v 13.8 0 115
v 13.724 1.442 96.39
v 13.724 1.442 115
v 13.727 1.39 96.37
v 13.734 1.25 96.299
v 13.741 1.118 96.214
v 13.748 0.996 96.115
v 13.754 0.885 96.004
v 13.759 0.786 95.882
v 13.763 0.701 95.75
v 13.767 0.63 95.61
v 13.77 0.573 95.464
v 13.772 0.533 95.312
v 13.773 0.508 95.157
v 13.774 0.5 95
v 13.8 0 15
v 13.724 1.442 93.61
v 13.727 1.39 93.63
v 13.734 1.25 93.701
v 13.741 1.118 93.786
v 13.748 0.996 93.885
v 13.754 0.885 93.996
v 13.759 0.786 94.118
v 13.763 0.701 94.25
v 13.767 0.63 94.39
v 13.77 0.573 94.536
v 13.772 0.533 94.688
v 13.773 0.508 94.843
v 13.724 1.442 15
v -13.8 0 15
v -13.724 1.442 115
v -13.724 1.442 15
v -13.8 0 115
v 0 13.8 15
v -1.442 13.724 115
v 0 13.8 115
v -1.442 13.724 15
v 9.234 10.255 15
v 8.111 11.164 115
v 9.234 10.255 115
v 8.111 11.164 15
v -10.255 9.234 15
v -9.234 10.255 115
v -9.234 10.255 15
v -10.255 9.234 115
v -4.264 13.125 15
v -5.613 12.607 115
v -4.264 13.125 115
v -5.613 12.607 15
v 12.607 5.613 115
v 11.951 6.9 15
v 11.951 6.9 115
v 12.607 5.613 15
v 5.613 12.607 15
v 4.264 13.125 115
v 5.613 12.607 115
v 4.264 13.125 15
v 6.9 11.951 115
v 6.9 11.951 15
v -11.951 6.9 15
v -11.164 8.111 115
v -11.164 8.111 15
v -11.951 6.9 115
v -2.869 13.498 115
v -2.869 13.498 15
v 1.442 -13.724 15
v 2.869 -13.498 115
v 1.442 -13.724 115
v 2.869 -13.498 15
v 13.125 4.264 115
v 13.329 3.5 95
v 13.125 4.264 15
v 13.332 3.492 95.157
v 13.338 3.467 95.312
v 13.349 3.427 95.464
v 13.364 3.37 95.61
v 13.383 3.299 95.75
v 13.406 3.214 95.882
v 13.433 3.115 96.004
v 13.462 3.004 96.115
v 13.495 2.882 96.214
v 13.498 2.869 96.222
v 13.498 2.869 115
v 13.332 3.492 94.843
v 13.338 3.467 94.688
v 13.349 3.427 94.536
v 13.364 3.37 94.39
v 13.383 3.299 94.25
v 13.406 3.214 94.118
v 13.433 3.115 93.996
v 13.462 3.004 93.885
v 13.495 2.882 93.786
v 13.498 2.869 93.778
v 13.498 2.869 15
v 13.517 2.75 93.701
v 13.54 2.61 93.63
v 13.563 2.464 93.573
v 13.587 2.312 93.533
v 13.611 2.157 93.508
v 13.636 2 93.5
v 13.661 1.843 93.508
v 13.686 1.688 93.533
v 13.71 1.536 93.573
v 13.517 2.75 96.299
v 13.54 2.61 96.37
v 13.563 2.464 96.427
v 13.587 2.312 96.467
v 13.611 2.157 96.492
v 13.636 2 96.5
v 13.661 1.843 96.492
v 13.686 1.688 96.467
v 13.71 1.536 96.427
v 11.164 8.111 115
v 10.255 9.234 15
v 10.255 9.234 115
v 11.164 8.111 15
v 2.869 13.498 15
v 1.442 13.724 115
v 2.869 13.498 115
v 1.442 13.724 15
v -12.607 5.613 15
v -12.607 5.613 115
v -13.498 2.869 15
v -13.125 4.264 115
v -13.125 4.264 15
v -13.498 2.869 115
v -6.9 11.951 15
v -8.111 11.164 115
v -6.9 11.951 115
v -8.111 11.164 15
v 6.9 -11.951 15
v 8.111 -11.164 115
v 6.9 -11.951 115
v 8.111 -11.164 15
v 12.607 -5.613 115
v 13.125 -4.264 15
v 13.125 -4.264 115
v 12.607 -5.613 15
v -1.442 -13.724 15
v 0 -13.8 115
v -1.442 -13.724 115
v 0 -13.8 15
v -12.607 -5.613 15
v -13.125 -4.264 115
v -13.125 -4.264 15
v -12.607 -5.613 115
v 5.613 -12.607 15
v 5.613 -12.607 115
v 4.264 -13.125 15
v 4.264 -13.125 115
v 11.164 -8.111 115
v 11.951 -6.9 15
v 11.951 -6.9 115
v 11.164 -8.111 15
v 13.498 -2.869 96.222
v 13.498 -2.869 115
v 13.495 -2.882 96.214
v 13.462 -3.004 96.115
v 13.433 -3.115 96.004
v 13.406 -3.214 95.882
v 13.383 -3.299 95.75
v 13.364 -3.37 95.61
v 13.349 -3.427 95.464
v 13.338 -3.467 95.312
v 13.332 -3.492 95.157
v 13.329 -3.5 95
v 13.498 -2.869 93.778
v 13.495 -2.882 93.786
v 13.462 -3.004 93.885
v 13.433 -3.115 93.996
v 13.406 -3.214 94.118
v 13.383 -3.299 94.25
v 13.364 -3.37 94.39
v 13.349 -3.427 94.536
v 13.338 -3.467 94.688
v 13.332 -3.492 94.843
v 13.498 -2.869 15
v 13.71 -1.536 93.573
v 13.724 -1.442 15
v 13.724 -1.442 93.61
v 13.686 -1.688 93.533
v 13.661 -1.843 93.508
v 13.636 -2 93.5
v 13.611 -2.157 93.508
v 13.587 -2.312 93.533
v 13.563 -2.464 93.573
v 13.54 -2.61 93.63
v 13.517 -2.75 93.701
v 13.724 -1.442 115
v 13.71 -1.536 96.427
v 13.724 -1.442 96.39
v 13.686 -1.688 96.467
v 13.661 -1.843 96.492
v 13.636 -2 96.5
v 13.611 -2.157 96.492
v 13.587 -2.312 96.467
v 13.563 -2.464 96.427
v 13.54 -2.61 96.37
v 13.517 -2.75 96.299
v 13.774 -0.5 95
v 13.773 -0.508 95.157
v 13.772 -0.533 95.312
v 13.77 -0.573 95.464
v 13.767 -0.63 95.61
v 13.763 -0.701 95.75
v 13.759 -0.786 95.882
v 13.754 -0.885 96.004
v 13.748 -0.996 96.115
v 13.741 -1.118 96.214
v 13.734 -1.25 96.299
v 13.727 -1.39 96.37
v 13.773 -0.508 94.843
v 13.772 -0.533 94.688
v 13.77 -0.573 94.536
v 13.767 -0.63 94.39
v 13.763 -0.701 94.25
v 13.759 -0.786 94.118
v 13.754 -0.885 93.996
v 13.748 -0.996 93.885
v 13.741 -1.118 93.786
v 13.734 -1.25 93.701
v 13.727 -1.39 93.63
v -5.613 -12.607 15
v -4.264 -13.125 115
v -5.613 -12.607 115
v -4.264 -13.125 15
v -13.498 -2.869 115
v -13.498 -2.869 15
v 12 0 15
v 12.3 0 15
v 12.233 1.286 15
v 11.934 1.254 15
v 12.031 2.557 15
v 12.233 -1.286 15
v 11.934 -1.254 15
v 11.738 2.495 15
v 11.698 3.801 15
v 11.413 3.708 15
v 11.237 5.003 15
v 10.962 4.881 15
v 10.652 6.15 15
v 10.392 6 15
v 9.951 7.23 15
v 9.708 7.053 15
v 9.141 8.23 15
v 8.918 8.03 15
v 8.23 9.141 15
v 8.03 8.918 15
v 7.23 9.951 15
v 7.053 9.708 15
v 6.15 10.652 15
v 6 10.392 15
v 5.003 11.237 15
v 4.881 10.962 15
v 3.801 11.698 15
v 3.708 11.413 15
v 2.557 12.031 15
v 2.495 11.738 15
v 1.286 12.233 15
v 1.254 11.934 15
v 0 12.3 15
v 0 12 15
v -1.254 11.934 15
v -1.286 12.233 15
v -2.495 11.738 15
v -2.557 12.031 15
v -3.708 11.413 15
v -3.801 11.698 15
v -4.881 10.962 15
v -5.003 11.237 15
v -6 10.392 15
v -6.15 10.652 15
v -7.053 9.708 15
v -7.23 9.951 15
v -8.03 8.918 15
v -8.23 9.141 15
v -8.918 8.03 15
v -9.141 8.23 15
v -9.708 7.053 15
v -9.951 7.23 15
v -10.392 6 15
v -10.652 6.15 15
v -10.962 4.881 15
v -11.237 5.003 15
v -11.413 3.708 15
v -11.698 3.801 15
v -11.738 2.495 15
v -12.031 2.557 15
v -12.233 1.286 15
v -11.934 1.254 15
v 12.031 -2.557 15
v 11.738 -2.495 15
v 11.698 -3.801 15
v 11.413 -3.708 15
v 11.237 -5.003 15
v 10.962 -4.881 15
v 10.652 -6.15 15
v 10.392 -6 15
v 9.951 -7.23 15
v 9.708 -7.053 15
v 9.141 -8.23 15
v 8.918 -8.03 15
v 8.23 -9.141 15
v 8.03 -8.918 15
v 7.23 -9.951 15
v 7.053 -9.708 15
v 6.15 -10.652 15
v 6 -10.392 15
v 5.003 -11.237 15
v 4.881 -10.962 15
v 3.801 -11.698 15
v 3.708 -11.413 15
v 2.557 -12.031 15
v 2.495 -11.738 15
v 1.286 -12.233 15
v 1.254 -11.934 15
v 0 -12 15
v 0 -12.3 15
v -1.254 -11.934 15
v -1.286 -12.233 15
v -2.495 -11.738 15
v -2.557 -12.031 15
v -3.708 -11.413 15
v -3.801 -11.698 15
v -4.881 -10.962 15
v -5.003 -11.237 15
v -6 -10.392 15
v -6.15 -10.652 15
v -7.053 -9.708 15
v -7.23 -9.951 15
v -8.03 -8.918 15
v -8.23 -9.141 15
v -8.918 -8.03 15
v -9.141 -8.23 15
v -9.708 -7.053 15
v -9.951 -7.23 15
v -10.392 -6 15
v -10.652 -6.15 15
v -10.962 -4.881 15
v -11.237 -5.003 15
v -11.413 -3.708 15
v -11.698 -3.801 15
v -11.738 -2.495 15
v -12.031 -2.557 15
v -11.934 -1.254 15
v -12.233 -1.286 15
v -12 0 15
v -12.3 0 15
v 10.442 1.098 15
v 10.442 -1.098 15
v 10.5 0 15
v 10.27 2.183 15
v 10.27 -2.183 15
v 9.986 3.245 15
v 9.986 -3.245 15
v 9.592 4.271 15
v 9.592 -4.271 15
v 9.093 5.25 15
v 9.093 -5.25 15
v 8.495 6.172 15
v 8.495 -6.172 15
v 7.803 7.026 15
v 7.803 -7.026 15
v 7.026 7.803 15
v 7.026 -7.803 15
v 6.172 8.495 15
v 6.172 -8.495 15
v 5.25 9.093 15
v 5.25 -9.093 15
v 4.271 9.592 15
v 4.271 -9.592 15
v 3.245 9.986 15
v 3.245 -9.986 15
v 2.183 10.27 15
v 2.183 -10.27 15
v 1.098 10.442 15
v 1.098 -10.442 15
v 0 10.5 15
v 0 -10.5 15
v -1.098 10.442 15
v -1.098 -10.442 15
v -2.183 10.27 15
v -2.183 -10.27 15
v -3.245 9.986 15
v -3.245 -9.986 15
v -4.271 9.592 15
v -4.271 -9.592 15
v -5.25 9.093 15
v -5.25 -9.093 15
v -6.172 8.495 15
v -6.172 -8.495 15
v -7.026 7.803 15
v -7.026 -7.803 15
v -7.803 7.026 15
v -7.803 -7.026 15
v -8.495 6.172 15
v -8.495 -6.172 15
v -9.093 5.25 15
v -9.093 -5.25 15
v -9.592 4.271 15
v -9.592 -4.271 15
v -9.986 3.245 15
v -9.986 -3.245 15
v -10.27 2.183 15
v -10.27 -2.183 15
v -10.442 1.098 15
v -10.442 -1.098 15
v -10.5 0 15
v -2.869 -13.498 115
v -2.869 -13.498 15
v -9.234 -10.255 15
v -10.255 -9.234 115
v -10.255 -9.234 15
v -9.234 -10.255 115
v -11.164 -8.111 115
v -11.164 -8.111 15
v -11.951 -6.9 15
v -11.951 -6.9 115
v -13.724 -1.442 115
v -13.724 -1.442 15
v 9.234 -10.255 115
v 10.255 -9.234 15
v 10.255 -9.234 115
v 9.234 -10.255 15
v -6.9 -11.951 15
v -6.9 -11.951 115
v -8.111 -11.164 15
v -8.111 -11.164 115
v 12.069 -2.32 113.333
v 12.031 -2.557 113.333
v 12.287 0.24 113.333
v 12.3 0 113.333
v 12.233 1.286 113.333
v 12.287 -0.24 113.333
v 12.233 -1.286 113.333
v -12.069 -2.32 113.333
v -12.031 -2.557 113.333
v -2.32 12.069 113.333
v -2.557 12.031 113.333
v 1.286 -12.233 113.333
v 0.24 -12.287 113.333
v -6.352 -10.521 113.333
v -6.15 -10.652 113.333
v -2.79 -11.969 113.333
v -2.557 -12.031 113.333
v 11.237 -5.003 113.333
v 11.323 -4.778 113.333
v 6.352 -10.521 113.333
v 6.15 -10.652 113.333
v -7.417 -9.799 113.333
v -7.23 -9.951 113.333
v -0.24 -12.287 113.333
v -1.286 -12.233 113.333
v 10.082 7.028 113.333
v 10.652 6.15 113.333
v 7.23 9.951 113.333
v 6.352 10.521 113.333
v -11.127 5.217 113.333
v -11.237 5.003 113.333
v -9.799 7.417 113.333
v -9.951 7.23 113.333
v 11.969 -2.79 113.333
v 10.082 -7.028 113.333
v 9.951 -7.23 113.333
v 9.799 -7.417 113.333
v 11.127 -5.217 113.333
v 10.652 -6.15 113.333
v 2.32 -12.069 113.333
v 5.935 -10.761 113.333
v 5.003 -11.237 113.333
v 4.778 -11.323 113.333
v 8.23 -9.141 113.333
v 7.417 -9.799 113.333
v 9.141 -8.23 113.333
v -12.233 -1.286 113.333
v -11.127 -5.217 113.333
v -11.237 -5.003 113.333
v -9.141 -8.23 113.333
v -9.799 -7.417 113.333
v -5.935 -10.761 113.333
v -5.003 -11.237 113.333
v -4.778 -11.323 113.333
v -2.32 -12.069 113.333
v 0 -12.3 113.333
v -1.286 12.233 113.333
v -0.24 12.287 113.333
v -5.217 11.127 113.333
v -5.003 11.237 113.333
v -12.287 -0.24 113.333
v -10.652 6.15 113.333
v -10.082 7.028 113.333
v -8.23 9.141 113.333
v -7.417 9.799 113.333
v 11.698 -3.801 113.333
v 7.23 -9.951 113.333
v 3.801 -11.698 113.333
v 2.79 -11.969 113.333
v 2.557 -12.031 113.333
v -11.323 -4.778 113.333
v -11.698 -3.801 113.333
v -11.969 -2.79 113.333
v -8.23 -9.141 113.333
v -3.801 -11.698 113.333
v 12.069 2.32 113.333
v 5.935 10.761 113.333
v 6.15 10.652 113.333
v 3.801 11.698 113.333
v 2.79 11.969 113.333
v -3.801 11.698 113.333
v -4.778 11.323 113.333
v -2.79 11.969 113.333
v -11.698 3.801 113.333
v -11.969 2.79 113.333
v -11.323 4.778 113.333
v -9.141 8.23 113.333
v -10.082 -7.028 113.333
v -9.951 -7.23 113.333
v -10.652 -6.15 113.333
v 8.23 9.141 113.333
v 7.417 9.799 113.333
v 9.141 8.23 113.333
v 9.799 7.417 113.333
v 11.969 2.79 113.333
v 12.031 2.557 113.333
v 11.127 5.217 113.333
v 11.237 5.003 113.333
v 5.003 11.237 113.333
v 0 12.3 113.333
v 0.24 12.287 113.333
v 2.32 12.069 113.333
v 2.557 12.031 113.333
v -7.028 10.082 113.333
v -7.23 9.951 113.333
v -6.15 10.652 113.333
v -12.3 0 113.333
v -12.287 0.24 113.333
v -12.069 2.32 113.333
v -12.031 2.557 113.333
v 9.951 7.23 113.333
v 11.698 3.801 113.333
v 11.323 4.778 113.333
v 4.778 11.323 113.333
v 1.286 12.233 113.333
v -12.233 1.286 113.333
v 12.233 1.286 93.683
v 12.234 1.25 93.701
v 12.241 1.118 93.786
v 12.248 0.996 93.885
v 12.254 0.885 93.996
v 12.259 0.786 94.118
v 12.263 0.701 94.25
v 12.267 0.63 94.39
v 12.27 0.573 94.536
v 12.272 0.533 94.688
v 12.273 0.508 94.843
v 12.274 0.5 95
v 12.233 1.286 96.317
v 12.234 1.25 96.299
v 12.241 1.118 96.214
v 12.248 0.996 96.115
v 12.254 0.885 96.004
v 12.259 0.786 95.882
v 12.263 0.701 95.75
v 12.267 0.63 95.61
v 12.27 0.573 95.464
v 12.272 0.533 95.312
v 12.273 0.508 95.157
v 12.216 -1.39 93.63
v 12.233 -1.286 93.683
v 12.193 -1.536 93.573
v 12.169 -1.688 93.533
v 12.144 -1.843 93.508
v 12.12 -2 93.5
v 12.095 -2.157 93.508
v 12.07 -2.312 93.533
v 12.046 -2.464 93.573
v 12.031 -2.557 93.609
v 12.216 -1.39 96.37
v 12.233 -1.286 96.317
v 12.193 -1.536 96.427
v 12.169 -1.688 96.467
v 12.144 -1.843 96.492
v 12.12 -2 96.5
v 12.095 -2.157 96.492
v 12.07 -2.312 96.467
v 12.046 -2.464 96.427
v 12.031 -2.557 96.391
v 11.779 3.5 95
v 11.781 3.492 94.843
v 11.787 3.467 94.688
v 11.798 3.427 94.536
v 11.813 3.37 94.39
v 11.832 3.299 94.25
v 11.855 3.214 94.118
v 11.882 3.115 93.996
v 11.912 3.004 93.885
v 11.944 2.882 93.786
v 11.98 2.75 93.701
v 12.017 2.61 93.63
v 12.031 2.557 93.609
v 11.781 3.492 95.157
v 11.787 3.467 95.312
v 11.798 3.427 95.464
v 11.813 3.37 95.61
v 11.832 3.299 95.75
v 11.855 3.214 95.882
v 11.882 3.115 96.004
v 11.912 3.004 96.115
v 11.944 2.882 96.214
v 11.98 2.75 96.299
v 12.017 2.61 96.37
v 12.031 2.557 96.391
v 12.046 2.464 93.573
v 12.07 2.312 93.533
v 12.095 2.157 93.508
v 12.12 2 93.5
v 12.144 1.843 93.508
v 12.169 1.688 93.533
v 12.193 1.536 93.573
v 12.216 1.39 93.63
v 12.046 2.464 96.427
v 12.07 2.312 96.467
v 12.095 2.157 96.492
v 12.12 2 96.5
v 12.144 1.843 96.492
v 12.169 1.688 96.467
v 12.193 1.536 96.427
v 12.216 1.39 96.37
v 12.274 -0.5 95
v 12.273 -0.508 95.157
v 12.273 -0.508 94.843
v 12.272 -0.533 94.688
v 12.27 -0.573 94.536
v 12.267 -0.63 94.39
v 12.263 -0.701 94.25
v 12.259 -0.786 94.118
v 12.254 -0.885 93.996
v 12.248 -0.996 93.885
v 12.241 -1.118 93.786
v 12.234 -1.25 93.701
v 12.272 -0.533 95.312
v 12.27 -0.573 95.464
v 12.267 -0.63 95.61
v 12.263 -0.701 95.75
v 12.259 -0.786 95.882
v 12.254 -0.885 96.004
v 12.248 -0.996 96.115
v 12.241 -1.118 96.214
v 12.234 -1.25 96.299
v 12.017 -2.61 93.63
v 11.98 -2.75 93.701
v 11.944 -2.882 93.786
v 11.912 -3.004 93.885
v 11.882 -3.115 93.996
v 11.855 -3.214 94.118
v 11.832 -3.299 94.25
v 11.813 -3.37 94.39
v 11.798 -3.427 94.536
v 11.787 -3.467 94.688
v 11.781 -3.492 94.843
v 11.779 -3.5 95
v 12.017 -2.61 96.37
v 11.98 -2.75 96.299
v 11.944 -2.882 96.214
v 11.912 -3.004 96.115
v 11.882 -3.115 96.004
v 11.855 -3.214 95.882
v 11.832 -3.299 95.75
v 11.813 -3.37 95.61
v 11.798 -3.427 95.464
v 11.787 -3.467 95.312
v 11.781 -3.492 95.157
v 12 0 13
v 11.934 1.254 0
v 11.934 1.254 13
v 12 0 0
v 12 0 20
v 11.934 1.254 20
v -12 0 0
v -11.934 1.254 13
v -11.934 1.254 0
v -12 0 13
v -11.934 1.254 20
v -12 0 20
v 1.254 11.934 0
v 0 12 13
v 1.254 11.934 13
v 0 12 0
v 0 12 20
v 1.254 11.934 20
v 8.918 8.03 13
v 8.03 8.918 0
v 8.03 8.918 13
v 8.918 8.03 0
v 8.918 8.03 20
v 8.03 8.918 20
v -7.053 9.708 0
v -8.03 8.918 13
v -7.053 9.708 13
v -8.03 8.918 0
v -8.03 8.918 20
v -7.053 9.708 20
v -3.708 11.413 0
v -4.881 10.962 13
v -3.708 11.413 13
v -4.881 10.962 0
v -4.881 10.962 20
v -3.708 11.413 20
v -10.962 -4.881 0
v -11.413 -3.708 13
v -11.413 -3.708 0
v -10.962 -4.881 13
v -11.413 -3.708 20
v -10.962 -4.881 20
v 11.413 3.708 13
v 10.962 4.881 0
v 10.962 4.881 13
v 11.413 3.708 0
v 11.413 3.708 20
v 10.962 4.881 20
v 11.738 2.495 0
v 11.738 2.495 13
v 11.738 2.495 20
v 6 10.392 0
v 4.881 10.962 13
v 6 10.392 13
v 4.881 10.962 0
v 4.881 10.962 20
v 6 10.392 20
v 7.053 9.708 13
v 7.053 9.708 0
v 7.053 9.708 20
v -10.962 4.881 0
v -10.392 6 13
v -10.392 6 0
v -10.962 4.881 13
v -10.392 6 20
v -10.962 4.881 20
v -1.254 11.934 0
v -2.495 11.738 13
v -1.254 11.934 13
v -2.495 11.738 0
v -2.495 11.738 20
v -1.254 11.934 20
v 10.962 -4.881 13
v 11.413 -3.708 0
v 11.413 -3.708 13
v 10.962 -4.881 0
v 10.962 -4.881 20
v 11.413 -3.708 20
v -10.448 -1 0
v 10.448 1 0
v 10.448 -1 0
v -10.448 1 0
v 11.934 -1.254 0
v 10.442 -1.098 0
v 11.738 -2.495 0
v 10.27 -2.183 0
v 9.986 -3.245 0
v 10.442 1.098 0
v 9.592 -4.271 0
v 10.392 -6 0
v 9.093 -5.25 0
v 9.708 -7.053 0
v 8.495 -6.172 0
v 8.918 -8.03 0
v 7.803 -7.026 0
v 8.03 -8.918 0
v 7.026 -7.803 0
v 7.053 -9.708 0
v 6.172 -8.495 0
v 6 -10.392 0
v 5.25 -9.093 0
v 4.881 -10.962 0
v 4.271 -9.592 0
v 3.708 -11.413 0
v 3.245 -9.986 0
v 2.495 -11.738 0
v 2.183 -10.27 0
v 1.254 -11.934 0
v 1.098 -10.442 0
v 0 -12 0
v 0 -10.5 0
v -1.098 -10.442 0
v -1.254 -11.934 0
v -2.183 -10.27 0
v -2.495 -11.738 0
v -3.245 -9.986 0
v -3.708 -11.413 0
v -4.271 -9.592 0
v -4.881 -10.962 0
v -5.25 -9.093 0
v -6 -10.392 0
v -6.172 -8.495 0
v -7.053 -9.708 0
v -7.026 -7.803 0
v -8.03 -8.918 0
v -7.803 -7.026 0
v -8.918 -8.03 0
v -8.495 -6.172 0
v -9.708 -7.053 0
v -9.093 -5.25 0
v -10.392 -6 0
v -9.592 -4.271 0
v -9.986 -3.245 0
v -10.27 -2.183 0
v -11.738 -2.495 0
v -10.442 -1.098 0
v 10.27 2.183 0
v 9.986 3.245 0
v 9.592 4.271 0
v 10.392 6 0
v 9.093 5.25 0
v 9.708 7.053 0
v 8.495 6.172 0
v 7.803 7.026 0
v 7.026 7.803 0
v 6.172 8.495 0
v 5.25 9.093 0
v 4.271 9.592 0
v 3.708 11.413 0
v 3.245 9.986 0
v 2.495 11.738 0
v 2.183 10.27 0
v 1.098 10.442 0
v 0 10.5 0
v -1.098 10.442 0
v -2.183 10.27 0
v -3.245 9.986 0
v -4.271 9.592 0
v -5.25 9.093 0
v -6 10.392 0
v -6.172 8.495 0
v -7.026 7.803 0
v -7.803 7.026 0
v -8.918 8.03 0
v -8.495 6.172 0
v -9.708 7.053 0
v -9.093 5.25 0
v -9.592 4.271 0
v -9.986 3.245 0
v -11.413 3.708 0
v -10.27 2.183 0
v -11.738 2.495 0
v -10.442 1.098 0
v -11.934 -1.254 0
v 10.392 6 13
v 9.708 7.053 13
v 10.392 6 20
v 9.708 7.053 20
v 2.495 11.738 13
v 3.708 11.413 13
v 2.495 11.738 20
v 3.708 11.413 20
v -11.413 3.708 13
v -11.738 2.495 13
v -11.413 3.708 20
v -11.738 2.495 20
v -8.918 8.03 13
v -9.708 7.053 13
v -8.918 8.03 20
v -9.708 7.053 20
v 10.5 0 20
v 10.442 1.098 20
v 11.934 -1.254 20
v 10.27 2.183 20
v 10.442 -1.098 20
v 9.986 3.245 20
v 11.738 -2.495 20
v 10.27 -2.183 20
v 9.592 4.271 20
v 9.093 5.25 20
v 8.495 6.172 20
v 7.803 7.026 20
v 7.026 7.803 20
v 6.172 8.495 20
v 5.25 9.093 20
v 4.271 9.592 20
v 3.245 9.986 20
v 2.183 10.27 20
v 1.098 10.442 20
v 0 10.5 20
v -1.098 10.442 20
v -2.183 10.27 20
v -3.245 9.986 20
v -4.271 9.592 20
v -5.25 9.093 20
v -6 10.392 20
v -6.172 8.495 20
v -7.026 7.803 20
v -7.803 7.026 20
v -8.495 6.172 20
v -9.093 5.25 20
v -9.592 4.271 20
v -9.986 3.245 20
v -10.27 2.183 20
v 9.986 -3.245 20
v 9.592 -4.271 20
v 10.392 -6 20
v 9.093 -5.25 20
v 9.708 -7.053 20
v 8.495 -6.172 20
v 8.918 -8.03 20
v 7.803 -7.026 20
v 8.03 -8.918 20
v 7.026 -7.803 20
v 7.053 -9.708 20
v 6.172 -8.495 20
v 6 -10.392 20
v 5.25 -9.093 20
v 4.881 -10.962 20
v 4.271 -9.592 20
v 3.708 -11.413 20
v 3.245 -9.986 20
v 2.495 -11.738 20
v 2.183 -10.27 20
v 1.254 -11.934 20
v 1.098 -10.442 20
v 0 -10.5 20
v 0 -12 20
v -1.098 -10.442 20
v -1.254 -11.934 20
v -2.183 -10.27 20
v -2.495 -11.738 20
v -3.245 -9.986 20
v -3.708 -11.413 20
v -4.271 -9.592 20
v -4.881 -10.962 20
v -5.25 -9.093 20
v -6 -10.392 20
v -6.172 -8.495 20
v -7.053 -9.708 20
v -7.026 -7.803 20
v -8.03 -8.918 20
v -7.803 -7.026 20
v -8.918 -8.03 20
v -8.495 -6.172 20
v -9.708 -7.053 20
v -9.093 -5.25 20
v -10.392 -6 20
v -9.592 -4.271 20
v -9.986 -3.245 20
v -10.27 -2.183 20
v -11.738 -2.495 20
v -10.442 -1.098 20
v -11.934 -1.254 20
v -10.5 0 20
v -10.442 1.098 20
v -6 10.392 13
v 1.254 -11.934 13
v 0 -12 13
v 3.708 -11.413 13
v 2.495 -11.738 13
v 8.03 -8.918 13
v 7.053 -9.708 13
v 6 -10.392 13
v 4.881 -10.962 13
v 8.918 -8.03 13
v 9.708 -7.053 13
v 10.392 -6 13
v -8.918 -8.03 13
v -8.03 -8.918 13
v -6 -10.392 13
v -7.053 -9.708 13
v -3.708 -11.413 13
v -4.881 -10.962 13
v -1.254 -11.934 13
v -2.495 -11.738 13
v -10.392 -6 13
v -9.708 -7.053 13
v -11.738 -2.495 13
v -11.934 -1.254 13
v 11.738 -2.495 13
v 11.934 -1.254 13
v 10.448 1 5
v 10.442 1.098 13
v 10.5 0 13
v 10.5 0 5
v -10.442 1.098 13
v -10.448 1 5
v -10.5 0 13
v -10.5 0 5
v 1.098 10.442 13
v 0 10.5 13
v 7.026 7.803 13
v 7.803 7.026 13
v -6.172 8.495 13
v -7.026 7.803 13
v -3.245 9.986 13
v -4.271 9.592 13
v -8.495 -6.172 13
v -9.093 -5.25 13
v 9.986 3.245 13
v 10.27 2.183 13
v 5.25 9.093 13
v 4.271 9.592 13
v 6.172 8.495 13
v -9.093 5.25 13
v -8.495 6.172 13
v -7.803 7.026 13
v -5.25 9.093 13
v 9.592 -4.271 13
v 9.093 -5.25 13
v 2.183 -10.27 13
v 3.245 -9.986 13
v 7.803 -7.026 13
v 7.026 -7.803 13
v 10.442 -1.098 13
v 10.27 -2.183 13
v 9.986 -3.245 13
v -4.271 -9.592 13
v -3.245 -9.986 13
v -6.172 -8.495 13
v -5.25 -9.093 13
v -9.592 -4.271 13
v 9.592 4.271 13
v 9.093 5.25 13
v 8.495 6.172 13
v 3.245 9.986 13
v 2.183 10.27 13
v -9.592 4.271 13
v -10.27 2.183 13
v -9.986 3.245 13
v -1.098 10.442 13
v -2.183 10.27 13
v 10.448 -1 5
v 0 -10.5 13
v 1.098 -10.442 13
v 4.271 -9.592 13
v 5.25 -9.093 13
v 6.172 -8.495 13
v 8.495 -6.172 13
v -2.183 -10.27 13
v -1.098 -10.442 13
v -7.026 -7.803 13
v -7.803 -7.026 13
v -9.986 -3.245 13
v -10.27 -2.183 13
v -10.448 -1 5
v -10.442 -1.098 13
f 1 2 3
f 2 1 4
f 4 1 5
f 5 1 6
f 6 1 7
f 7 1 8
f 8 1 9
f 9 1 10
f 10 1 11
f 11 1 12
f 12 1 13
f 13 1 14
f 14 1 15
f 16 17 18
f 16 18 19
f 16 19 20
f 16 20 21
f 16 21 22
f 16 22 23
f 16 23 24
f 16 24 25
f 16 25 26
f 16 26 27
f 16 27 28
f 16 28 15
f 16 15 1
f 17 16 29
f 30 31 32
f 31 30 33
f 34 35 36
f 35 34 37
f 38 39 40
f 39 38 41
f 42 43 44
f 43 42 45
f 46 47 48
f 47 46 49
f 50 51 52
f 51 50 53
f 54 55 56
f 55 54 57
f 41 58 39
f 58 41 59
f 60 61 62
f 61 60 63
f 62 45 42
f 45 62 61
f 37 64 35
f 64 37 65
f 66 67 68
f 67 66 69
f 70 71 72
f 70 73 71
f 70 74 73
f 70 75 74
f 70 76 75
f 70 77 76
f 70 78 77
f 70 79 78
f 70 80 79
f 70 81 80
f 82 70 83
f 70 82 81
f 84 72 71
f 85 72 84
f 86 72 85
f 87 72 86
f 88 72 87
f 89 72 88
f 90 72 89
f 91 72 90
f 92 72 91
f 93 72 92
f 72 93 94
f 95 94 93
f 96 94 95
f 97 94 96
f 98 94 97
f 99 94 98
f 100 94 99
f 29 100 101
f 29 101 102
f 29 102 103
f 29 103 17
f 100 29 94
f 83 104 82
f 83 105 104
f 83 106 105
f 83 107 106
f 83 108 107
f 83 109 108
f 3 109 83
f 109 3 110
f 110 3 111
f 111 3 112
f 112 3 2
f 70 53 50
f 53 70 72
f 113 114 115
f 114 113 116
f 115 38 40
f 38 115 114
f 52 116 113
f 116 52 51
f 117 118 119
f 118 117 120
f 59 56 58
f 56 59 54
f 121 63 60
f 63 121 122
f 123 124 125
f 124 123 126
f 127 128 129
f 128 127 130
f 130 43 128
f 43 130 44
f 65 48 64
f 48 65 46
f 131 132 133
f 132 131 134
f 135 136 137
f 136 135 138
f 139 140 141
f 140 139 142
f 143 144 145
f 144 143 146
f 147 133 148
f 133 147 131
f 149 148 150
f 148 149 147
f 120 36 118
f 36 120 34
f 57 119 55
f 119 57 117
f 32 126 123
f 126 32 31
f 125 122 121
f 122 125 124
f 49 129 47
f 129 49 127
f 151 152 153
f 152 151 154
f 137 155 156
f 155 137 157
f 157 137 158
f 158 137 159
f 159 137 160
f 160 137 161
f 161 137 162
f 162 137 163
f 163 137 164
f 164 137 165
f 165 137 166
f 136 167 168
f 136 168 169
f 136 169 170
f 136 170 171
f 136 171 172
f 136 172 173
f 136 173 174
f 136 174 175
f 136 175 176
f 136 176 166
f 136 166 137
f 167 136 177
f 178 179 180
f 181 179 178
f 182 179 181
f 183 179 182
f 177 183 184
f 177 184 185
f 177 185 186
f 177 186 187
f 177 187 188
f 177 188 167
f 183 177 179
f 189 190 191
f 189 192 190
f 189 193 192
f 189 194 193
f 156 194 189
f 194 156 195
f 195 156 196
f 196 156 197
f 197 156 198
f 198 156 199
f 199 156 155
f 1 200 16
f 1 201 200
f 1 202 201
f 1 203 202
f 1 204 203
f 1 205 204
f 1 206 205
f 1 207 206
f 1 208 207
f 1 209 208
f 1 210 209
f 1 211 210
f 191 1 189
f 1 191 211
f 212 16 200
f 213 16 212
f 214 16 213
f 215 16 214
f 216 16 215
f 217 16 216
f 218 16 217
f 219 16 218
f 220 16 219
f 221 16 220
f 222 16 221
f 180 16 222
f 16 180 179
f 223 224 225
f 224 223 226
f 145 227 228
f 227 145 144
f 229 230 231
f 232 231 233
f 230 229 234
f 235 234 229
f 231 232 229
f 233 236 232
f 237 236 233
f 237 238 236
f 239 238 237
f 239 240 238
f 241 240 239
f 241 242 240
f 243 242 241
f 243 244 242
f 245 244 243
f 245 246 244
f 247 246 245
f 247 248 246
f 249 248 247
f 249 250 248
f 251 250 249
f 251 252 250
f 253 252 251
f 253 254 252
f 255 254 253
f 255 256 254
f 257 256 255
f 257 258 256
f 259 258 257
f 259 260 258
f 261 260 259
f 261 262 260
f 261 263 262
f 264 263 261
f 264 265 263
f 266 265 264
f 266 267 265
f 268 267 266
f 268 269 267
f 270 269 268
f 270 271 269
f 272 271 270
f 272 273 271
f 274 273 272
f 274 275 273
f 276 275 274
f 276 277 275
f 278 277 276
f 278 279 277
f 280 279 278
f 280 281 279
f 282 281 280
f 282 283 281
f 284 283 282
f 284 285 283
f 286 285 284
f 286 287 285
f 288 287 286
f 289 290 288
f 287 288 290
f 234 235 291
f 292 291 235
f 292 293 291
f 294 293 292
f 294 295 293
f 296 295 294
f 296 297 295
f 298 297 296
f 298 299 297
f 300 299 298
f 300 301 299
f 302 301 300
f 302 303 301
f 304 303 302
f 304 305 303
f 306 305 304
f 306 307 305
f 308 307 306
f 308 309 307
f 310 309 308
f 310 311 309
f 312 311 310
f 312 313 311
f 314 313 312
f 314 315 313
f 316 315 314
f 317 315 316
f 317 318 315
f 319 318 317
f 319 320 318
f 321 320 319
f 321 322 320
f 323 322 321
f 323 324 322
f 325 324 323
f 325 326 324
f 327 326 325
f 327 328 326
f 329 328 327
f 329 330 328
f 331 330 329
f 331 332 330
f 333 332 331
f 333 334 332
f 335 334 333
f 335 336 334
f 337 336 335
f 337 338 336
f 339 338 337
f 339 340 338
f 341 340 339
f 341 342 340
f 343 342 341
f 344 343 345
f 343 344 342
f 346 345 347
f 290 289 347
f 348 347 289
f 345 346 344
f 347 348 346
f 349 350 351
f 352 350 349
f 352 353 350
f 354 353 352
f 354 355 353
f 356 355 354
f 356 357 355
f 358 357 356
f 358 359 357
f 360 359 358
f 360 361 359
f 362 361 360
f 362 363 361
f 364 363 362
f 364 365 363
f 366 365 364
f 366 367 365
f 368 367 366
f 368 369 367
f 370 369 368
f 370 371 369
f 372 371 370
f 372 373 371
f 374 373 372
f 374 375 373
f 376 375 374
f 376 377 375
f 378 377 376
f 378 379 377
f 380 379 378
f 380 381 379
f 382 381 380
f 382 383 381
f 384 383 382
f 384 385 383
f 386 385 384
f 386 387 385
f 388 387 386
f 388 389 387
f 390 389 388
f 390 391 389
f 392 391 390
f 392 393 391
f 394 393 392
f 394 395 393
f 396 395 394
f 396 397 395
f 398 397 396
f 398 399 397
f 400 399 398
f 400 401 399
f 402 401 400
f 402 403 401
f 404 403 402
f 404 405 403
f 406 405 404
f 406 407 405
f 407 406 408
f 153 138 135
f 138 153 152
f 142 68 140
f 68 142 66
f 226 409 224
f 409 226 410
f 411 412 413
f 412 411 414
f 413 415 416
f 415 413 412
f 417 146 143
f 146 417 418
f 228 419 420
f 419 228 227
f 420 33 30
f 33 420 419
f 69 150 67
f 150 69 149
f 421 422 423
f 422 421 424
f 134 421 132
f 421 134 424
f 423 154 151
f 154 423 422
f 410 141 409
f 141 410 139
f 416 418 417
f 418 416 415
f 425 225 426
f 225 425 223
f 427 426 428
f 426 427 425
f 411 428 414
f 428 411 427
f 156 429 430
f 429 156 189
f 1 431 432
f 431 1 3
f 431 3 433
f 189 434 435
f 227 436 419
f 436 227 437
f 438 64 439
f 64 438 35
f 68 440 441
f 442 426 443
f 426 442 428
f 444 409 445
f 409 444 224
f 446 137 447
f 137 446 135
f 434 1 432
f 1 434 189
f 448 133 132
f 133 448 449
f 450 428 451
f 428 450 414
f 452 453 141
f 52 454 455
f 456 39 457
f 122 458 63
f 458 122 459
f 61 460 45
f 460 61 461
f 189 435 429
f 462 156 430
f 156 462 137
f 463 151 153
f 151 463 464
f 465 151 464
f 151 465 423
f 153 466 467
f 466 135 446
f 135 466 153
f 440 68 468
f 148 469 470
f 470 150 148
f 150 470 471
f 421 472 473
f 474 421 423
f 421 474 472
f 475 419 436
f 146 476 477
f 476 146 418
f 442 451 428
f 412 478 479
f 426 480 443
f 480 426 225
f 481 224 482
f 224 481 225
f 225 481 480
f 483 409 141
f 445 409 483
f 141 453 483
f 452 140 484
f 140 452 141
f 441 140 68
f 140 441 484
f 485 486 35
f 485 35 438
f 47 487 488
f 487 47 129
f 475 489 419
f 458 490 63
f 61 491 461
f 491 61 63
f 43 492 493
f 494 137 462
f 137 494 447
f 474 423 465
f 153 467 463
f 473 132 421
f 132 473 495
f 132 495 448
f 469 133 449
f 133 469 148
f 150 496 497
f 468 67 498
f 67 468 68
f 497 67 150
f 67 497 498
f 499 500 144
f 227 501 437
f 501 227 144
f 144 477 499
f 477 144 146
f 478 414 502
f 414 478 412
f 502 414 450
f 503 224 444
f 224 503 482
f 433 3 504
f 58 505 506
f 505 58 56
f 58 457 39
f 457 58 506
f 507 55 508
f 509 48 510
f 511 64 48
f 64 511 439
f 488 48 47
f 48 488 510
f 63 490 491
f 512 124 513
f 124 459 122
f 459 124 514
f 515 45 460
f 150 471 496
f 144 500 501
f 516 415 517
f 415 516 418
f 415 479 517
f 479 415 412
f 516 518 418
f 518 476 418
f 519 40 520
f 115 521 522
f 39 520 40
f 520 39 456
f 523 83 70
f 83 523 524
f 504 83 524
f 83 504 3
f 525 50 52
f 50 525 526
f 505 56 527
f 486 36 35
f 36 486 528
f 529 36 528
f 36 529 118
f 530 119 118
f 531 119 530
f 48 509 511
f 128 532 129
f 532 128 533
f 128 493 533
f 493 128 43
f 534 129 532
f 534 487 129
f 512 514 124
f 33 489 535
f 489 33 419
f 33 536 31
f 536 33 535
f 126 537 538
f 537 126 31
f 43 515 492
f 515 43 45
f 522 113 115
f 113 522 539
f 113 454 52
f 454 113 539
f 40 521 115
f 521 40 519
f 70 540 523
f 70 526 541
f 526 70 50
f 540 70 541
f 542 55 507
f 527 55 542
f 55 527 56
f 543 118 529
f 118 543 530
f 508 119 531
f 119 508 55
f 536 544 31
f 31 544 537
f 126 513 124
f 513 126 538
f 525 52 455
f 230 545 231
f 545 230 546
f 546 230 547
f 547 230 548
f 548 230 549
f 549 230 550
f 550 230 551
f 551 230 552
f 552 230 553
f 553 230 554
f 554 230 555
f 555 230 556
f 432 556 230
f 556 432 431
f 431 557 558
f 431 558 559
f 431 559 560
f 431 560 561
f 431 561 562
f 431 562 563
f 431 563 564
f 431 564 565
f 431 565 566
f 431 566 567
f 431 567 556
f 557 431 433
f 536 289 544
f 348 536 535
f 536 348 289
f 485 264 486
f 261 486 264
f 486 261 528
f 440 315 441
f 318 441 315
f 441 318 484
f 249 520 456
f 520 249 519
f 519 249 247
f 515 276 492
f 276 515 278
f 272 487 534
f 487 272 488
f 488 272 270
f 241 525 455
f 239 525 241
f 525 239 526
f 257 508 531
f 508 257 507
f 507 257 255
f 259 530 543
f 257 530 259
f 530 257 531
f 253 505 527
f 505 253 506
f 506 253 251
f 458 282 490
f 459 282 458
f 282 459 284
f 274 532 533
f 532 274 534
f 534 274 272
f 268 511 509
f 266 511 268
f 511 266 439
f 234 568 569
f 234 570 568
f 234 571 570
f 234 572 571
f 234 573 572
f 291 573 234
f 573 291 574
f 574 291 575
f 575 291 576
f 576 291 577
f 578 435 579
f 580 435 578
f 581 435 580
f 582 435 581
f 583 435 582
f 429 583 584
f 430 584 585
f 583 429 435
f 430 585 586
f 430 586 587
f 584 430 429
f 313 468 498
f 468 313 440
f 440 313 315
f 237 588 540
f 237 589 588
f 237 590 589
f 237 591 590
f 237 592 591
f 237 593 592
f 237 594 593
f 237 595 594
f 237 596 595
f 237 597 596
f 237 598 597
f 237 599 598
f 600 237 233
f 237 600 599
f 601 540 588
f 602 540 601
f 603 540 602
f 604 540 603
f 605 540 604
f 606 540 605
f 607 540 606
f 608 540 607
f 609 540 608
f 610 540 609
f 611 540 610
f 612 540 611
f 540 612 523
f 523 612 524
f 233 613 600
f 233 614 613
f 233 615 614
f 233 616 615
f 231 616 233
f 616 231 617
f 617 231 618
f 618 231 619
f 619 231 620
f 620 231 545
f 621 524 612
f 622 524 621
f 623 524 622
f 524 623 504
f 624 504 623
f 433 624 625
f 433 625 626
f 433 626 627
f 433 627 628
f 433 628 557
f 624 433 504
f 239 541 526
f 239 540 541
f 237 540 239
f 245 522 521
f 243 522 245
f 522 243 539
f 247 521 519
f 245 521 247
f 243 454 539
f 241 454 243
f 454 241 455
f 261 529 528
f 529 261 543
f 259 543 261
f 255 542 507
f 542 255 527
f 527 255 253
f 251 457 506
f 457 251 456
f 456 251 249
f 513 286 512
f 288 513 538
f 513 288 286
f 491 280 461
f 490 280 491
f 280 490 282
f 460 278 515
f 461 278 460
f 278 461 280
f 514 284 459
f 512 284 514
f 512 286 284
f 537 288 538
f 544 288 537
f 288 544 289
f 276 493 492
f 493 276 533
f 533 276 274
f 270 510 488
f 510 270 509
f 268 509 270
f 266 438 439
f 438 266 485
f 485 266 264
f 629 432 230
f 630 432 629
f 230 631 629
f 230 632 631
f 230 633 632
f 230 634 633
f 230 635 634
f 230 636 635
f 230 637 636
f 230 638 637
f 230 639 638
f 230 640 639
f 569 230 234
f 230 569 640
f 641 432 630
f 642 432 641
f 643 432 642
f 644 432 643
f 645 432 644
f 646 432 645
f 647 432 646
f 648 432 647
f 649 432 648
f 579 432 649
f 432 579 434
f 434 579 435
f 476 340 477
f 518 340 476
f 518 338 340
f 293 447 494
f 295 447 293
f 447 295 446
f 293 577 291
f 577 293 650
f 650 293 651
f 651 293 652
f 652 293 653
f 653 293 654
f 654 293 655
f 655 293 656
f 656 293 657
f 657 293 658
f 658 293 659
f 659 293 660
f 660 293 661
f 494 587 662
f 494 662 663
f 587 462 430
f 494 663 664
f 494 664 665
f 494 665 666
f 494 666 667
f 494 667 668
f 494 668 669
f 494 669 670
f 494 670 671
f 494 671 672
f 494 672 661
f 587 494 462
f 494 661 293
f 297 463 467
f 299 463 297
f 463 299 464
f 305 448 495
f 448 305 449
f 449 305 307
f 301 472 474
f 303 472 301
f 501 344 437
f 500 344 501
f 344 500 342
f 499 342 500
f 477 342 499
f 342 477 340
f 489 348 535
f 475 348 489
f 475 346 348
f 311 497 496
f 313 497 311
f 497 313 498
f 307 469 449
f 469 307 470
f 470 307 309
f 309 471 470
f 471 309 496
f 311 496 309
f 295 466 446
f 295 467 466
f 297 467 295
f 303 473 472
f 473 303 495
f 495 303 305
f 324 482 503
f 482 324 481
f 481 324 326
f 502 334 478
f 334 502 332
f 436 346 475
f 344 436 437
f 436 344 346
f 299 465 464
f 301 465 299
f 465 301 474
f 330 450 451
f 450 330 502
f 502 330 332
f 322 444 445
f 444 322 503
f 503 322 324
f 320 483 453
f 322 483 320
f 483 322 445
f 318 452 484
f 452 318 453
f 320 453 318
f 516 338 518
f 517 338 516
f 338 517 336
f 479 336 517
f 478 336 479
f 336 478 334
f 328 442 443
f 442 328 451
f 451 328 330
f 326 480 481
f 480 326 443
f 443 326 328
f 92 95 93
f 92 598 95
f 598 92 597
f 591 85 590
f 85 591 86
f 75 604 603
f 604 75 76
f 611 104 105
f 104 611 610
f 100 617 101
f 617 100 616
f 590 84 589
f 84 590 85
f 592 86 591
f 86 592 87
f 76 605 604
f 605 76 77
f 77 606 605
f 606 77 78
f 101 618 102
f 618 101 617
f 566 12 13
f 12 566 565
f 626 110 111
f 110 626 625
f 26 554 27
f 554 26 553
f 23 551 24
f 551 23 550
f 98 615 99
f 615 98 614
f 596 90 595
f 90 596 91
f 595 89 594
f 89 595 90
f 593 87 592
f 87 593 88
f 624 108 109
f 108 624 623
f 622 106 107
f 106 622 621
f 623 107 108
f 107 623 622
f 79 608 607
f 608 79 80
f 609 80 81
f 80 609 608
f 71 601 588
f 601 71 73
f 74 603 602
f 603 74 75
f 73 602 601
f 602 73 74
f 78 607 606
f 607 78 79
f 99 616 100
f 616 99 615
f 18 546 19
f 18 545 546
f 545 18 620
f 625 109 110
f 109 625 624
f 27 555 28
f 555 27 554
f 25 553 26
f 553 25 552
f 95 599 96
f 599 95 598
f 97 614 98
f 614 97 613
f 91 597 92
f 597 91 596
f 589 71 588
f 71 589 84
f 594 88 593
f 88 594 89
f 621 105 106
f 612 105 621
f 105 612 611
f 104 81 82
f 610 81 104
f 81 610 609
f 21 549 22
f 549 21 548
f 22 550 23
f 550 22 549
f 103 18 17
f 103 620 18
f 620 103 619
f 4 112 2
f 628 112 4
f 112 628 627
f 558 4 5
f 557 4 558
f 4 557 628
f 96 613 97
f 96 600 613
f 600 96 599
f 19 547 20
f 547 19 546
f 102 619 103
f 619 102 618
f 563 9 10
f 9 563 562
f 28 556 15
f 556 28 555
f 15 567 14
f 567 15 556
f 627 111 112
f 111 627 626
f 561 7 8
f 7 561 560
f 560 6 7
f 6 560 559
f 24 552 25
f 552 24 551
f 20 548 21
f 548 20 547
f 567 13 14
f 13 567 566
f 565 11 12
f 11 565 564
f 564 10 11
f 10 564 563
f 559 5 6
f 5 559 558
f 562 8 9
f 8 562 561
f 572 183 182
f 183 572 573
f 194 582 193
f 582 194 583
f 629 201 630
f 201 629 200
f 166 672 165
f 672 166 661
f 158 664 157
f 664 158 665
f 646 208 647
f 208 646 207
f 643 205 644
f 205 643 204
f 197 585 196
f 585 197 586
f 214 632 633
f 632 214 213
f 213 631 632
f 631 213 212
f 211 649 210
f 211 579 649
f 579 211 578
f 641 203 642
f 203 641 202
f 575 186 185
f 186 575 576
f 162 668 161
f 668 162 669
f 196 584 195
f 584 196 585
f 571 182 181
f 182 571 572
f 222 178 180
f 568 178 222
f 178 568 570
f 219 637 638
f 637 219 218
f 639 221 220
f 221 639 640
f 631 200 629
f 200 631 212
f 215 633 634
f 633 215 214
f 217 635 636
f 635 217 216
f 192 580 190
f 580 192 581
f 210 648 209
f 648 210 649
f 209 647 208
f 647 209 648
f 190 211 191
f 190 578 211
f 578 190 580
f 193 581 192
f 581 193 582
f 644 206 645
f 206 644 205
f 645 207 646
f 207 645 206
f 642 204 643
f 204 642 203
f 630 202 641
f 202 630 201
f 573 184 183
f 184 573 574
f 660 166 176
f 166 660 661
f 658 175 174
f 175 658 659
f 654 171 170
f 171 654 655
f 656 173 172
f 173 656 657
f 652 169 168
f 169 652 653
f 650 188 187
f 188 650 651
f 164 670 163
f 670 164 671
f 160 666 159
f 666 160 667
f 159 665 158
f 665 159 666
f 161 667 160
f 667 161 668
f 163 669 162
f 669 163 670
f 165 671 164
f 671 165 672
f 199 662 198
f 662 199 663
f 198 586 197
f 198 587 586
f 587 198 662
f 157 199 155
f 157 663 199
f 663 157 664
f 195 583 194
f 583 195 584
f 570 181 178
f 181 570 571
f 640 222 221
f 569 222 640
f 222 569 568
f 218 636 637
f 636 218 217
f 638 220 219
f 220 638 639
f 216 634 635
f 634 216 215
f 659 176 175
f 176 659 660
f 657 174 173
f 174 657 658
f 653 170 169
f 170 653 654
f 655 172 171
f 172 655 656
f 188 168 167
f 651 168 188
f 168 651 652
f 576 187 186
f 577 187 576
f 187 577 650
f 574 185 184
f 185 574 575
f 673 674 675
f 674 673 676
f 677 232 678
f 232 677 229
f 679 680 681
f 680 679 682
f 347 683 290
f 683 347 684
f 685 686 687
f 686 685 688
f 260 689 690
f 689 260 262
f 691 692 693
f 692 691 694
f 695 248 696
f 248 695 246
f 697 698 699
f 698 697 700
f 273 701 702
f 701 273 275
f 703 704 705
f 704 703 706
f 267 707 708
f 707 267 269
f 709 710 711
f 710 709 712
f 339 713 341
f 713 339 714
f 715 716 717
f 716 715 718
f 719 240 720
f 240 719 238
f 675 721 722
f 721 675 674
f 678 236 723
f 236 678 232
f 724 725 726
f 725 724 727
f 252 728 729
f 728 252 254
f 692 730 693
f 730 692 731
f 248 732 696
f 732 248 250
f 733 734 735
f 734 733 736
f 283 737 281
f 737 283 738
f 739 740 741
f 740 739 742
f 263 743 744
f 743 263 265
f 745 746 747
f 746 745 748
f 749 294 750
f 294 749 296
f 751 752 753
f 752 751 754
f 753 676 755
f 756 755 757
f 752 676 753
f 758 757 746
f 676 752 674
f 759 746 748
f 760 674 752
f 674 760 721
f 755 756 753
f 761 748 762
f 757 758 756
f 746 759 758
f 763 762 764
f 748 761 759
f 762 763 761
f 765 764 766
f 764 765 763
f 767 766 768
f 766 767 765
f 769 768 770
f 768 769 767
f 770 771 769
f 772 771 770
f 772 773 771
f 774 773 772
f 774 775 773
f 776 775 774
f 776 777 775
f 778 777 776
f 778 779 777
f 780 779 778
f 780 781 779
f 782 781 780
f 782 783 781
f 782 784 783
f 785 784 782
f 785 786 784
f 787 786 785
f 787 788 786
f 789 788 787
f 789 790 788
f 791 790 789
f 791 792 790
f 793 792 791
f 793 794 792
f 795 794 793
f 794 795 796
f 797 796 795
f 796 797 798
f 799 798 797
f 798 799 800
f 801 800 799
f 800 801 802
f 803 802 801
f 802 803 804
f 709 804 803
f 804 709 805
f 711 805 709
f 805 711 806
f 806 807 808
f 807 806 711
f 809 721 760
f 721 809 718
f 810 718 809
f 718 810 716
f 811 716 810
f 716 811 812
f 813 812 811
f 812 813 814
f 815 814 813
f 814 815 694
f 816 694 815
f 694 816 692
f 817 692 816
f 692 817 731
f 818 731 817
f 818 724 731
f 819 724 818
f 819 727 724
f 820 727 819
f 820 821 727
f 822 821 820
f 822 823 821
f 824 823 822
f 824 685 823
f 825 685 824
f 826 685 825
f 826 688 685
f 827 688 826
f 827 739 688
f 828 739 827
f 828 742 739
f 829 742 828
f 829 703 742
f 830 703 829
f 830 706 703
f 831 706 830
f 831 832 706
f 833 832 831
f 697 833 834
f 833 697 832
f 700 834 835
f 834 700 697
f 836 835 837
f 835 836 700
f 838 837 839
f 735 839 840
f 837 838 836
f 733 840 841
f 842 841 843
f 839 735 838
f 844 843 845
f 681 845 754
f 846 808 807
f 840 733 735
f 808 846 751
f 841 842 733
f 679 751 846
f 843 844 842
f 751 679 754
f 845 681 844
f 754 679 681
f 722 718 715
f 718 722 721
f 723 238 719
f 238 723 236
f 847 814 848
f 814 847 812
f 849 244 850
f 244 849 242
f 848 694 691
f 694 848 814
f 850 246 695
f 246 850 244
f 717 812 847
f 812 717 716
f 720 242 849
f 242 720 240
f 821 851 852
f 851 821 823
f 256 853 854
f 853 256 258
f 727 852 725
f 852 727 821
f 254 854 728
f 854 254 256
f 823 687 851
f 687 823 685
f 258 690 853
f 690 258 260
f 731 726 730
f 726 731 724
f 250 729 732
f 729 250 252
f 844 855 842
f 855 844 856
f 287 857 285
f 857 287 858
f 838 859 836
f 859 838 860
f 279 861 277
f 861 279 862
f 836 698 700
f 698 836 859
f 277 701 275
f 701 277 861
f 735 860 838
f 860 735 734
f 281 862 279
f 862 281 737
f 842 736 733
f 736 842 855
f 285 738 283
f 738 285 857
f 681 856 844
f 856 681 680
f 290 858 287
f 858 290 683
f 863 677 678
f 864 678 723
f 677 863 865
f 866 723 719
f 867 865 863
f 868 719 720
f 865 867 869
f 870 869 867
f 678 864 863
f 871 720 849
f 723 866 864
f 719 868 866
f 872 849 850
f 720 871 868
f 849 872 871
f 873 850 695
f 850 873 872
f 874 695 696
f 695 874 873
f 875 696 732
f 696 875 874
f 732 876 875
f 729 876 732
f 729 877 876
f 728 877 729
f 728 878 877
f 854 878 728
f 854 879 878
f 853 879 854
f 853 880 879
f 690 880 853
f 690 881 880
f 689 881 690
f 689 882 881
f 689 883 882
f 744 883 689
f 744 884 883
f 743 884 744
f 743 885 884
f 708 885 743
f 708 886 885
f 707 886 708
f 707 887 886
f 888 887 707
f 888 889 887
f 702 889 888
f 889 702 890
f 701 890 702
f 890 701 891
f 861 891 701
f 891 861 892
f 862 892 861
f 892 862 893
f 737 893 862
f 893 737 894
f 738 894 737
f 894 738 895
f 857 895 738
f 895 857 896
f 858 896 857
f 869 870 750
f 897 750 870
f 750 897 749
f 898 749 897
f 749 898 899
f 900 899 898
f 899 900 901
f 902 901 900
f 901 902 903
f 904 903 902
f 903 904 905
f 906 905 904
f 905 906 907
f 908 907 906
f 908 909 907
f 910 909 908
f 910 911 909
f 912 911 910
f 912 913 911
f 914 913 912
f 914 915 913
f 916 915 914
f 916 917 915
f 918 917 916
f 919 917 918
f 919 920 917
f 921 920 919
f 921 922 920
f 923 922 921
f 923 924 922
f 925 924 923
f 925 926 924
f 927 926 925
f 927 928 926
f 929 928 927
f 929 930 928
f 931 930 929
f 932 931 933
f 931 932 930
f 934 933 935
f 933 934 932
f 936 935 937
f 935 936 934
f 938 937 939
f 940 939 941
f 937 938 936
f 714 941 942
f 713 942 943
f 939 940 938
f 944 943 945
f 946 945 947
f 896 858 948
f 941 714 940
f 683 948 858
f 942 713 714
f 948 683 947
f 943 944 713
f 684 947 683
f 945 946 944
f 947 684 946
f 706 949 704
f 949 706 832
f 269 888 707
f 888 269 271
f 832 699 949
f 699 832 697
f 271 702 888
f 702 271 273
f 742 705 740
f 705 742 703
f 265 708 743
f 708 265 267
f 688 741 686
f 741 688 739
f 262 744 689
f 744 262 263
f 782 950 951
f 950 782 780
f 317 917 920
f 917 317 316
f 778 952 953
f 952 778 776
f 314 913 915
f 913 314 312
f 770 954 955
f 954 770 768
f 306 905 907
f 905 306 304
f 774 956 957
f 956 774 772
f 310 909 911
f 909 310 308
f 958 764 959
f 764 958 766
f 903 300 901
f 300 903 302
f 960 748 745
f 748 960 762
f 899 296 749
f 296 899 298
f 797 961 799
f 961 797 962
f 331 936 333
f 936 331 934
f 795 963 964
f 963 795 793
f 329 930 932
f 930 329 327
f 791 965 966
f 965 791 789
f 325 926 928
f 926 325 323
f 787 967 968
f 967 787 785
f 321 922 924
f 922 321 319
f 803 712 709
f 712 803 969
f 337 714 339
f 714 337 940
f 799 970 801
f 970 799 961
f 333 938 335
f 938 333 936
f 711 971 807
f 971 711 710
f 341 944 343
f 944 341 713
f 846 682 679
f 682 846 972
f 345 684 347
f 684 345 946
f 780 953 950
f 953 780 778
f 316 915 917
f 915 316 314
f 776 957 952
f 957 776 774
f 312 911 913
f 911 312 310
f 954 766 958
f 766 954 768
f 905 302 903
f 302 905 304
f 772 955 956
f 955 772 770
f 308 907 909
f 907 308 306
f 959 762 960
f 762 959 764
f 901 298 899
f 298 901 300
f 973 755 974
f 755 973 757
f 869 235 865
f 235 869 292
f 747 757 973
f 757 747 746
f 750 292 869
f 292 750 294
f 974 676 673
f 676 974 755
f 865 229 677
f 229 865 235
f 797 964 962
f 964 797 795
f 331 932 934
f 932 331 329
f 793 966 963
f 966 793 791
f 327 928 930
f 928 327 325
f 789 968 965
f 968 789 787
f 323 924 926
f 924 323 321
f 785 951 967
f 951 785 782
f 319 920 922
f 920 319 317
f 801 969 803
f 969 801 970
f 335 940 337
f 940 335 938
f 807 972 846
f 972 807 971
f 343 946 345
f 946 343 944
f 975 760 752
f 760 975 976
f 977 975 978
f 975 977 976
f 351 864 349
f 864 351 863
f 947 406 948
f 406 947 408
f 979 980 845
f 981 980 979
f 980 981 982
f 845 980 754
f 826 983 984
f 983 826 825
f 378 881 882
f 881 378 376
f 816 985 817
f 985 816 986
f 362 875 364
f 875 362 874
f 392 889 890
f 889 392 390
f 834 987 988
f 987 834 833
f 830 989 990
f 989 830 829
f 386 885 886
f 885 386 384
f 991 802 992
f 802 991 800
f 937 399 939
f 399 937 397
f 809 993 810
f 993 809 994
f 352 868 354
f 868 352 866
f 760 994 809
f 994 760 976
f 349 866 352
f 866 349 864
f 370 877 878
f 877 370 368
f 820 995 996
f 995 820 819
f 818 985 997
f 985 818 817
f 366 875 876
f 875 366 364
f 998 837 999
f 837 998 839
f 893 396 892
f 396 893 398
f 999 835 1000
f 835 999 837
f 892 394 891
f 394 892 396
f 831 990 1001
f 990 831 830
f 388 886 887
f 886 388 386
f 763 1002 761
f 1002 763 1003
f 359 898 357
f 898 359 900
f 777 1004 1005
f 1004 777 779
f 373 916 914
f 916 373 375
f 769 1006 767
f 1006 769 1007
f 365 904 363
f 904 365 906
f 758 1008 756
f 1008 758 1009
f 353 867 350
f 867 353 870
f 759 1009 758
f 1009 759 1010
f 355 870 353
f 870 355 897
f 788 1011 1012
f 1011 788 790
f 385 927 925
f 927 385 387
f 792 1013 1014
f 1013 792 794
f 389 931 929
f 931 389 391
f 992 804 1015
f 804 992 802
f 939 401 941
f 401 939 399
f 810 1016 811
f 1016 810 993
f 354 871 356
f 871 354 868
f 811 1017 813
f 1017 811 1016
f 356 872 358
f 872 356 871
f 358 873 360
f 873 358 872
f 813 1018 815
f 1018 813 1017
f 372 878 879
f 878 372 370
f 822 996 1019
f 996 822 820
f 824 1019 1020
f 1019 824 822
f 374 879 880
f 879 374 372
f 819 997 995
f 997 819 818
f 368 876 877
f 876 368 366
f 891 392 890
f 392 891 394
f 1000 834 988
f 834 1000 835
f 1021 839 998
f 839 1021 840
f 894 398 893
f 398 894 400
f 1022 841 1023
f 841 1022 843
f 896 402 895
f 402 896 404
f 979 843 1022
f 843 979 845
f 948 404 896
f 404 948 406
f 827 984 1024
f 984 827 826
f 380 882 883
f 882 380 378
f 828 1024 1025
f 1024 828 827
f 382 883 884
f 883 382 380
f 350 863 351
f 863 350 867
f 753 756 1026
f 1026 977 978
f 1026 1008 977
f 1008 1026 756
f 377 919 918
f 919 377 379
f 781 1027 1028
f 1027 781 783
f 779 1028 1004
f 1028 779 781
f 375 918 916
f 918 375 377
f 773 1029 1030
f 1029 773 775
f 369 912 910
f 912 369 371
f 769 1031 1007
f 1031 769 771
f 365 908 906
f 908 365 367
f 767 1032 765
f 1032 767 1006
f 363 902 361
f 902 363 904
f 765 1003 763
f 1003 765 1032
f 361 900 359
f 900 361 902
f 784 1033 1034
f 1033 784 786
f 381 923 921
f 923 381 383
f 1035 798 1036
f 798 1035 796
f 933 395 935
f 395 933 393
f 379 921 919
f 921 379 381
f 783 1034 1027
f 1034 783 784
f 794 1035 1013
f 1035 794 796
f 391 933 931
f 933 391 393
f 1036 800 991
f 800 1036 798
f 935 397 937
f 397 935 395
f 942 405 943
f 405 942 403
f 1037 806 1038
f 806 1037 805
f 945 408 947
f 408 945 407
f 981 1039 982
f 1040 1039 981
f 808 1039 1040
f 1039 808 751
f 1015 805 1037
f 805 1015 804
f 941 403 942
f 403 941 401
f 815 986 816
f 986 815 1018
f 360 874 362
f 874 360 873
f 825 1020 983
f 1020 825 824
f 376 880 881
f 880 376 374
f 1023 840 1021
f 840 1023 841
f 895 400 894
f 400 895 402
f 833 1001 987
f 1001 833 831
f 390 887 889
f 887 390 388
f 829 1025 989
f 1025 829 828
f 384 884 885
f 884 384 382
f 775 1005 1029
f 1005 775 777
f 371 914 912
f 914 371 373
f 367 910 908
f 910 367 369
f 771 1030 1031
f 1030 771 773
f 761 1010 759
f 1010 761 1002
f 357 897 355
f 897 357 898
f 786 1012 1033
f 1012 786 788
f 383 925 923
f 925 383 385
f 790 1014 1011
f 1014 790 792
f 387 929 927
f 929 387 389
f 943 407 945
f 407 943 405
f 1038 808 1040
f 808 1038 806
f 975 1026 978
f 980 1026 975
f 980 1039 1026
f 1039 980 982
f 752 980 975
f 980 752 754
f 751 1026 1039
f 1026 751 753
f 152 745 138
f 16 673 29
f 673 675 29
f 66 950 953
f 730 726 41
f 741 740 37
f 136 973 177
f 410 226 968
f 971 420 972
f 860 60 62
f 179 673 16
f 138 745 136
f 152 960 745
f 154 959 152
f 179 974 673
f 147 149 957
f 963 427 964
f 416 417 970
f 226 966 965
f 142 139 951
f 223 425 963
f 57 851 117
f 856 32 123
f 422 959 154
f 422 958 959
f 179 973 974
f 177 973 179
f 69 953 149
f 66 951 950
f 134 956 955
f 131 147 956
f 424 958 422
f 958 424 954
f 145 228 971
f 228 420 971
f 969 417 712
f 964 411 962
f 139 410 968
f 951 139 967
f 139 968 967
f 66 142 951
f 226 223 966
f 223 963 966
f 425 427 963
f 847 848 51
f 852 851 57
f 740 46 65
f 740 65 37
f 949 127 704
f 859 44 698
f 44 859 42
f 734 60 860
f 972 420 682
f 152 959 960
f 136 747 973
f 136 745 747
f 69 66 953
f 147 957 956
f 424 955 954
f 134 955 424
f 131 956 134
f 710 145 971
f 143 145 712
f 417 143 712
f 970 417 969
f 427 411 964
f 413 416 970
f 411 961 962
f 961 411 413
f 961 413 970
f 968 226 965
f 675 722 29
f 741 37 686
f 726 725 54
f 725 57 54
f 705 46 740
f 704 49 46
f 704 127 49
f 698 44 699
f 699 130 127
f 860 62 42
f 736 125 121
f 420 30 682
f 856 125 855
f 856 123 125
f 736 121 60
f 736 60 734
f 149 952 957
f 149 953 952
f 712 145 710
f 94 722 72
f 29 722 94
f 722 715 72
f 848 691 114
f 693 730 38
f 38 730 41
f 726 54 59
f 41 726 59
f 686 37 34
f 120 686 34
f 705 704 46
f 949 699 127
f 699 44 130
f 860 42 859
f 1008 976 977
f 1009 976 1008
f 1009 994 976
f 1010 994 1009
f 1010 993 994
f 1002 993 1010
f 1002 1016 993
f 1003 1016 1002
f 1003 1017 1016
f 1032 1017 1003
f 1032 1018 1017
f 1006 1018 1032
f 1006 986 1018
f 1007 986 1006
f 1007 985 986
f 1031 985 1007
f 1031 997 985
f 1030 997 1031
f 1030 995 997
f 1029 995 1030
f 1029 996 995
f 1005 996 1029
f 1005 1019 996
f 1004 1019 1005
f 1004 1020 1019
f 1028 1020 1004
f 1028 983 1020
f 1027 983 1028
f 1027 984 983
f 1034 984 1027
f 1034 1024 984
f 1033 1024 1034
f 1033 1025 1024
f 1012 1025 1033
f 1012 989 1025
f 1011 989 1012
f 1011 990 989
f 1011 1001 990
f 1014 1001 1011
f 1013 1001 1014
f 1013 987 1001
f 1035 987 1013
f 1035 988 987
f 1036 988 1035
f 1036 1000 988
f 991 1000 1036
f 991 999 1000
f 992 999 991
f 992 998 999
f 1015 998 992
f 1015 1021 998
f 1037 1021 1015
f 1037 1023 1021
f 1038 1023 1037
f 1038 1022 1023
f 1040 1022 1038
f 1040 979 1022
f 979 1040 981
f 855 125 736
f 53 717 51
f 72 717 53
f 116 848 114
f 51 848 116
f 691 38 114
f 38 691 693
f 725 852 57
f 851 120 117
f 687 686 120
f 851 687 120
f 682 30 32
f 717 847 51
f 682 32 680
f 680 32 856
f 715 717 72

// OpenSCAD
$fn = 60;

prumerM = 24.6;
stena = 1.5;
vyska = 100;

stena = 1.5;
prumerP = 24;
delkaP = 15;

translate([0, 0, delkaP]) difference() {
    cylinder(r=prumerM/2+stena, h=vyska);
    translate([0, 0, vyska-2]) cylinder(r1=prumerP/2, r2=prumerM/2+stena, h=2);
    cylinder(r=prumerM/2, h=vyska);
    #rotate([0, 90, 0]) translate([-vyska+20, 2, 5]) cylinder(r=1.5, h=10);
    #rotate([0, 90, 0]) translate([-vyska+20, -2, 5]) cylinder(r=1.5, h=10);
}
difference() {
    cylinder(r=prumerP/2, h=delkaP+5);
    cylinder(r=prumerP/2-stena, h=delkaP+5);
}
translate([0, 0, 2.5]) cube([prumerP-1, 2, 5], center=true);
translate([0, 0, delkaP-2]) cylinder(r1=prumerP/2, r2=prumerM/2+stena, h=2);
